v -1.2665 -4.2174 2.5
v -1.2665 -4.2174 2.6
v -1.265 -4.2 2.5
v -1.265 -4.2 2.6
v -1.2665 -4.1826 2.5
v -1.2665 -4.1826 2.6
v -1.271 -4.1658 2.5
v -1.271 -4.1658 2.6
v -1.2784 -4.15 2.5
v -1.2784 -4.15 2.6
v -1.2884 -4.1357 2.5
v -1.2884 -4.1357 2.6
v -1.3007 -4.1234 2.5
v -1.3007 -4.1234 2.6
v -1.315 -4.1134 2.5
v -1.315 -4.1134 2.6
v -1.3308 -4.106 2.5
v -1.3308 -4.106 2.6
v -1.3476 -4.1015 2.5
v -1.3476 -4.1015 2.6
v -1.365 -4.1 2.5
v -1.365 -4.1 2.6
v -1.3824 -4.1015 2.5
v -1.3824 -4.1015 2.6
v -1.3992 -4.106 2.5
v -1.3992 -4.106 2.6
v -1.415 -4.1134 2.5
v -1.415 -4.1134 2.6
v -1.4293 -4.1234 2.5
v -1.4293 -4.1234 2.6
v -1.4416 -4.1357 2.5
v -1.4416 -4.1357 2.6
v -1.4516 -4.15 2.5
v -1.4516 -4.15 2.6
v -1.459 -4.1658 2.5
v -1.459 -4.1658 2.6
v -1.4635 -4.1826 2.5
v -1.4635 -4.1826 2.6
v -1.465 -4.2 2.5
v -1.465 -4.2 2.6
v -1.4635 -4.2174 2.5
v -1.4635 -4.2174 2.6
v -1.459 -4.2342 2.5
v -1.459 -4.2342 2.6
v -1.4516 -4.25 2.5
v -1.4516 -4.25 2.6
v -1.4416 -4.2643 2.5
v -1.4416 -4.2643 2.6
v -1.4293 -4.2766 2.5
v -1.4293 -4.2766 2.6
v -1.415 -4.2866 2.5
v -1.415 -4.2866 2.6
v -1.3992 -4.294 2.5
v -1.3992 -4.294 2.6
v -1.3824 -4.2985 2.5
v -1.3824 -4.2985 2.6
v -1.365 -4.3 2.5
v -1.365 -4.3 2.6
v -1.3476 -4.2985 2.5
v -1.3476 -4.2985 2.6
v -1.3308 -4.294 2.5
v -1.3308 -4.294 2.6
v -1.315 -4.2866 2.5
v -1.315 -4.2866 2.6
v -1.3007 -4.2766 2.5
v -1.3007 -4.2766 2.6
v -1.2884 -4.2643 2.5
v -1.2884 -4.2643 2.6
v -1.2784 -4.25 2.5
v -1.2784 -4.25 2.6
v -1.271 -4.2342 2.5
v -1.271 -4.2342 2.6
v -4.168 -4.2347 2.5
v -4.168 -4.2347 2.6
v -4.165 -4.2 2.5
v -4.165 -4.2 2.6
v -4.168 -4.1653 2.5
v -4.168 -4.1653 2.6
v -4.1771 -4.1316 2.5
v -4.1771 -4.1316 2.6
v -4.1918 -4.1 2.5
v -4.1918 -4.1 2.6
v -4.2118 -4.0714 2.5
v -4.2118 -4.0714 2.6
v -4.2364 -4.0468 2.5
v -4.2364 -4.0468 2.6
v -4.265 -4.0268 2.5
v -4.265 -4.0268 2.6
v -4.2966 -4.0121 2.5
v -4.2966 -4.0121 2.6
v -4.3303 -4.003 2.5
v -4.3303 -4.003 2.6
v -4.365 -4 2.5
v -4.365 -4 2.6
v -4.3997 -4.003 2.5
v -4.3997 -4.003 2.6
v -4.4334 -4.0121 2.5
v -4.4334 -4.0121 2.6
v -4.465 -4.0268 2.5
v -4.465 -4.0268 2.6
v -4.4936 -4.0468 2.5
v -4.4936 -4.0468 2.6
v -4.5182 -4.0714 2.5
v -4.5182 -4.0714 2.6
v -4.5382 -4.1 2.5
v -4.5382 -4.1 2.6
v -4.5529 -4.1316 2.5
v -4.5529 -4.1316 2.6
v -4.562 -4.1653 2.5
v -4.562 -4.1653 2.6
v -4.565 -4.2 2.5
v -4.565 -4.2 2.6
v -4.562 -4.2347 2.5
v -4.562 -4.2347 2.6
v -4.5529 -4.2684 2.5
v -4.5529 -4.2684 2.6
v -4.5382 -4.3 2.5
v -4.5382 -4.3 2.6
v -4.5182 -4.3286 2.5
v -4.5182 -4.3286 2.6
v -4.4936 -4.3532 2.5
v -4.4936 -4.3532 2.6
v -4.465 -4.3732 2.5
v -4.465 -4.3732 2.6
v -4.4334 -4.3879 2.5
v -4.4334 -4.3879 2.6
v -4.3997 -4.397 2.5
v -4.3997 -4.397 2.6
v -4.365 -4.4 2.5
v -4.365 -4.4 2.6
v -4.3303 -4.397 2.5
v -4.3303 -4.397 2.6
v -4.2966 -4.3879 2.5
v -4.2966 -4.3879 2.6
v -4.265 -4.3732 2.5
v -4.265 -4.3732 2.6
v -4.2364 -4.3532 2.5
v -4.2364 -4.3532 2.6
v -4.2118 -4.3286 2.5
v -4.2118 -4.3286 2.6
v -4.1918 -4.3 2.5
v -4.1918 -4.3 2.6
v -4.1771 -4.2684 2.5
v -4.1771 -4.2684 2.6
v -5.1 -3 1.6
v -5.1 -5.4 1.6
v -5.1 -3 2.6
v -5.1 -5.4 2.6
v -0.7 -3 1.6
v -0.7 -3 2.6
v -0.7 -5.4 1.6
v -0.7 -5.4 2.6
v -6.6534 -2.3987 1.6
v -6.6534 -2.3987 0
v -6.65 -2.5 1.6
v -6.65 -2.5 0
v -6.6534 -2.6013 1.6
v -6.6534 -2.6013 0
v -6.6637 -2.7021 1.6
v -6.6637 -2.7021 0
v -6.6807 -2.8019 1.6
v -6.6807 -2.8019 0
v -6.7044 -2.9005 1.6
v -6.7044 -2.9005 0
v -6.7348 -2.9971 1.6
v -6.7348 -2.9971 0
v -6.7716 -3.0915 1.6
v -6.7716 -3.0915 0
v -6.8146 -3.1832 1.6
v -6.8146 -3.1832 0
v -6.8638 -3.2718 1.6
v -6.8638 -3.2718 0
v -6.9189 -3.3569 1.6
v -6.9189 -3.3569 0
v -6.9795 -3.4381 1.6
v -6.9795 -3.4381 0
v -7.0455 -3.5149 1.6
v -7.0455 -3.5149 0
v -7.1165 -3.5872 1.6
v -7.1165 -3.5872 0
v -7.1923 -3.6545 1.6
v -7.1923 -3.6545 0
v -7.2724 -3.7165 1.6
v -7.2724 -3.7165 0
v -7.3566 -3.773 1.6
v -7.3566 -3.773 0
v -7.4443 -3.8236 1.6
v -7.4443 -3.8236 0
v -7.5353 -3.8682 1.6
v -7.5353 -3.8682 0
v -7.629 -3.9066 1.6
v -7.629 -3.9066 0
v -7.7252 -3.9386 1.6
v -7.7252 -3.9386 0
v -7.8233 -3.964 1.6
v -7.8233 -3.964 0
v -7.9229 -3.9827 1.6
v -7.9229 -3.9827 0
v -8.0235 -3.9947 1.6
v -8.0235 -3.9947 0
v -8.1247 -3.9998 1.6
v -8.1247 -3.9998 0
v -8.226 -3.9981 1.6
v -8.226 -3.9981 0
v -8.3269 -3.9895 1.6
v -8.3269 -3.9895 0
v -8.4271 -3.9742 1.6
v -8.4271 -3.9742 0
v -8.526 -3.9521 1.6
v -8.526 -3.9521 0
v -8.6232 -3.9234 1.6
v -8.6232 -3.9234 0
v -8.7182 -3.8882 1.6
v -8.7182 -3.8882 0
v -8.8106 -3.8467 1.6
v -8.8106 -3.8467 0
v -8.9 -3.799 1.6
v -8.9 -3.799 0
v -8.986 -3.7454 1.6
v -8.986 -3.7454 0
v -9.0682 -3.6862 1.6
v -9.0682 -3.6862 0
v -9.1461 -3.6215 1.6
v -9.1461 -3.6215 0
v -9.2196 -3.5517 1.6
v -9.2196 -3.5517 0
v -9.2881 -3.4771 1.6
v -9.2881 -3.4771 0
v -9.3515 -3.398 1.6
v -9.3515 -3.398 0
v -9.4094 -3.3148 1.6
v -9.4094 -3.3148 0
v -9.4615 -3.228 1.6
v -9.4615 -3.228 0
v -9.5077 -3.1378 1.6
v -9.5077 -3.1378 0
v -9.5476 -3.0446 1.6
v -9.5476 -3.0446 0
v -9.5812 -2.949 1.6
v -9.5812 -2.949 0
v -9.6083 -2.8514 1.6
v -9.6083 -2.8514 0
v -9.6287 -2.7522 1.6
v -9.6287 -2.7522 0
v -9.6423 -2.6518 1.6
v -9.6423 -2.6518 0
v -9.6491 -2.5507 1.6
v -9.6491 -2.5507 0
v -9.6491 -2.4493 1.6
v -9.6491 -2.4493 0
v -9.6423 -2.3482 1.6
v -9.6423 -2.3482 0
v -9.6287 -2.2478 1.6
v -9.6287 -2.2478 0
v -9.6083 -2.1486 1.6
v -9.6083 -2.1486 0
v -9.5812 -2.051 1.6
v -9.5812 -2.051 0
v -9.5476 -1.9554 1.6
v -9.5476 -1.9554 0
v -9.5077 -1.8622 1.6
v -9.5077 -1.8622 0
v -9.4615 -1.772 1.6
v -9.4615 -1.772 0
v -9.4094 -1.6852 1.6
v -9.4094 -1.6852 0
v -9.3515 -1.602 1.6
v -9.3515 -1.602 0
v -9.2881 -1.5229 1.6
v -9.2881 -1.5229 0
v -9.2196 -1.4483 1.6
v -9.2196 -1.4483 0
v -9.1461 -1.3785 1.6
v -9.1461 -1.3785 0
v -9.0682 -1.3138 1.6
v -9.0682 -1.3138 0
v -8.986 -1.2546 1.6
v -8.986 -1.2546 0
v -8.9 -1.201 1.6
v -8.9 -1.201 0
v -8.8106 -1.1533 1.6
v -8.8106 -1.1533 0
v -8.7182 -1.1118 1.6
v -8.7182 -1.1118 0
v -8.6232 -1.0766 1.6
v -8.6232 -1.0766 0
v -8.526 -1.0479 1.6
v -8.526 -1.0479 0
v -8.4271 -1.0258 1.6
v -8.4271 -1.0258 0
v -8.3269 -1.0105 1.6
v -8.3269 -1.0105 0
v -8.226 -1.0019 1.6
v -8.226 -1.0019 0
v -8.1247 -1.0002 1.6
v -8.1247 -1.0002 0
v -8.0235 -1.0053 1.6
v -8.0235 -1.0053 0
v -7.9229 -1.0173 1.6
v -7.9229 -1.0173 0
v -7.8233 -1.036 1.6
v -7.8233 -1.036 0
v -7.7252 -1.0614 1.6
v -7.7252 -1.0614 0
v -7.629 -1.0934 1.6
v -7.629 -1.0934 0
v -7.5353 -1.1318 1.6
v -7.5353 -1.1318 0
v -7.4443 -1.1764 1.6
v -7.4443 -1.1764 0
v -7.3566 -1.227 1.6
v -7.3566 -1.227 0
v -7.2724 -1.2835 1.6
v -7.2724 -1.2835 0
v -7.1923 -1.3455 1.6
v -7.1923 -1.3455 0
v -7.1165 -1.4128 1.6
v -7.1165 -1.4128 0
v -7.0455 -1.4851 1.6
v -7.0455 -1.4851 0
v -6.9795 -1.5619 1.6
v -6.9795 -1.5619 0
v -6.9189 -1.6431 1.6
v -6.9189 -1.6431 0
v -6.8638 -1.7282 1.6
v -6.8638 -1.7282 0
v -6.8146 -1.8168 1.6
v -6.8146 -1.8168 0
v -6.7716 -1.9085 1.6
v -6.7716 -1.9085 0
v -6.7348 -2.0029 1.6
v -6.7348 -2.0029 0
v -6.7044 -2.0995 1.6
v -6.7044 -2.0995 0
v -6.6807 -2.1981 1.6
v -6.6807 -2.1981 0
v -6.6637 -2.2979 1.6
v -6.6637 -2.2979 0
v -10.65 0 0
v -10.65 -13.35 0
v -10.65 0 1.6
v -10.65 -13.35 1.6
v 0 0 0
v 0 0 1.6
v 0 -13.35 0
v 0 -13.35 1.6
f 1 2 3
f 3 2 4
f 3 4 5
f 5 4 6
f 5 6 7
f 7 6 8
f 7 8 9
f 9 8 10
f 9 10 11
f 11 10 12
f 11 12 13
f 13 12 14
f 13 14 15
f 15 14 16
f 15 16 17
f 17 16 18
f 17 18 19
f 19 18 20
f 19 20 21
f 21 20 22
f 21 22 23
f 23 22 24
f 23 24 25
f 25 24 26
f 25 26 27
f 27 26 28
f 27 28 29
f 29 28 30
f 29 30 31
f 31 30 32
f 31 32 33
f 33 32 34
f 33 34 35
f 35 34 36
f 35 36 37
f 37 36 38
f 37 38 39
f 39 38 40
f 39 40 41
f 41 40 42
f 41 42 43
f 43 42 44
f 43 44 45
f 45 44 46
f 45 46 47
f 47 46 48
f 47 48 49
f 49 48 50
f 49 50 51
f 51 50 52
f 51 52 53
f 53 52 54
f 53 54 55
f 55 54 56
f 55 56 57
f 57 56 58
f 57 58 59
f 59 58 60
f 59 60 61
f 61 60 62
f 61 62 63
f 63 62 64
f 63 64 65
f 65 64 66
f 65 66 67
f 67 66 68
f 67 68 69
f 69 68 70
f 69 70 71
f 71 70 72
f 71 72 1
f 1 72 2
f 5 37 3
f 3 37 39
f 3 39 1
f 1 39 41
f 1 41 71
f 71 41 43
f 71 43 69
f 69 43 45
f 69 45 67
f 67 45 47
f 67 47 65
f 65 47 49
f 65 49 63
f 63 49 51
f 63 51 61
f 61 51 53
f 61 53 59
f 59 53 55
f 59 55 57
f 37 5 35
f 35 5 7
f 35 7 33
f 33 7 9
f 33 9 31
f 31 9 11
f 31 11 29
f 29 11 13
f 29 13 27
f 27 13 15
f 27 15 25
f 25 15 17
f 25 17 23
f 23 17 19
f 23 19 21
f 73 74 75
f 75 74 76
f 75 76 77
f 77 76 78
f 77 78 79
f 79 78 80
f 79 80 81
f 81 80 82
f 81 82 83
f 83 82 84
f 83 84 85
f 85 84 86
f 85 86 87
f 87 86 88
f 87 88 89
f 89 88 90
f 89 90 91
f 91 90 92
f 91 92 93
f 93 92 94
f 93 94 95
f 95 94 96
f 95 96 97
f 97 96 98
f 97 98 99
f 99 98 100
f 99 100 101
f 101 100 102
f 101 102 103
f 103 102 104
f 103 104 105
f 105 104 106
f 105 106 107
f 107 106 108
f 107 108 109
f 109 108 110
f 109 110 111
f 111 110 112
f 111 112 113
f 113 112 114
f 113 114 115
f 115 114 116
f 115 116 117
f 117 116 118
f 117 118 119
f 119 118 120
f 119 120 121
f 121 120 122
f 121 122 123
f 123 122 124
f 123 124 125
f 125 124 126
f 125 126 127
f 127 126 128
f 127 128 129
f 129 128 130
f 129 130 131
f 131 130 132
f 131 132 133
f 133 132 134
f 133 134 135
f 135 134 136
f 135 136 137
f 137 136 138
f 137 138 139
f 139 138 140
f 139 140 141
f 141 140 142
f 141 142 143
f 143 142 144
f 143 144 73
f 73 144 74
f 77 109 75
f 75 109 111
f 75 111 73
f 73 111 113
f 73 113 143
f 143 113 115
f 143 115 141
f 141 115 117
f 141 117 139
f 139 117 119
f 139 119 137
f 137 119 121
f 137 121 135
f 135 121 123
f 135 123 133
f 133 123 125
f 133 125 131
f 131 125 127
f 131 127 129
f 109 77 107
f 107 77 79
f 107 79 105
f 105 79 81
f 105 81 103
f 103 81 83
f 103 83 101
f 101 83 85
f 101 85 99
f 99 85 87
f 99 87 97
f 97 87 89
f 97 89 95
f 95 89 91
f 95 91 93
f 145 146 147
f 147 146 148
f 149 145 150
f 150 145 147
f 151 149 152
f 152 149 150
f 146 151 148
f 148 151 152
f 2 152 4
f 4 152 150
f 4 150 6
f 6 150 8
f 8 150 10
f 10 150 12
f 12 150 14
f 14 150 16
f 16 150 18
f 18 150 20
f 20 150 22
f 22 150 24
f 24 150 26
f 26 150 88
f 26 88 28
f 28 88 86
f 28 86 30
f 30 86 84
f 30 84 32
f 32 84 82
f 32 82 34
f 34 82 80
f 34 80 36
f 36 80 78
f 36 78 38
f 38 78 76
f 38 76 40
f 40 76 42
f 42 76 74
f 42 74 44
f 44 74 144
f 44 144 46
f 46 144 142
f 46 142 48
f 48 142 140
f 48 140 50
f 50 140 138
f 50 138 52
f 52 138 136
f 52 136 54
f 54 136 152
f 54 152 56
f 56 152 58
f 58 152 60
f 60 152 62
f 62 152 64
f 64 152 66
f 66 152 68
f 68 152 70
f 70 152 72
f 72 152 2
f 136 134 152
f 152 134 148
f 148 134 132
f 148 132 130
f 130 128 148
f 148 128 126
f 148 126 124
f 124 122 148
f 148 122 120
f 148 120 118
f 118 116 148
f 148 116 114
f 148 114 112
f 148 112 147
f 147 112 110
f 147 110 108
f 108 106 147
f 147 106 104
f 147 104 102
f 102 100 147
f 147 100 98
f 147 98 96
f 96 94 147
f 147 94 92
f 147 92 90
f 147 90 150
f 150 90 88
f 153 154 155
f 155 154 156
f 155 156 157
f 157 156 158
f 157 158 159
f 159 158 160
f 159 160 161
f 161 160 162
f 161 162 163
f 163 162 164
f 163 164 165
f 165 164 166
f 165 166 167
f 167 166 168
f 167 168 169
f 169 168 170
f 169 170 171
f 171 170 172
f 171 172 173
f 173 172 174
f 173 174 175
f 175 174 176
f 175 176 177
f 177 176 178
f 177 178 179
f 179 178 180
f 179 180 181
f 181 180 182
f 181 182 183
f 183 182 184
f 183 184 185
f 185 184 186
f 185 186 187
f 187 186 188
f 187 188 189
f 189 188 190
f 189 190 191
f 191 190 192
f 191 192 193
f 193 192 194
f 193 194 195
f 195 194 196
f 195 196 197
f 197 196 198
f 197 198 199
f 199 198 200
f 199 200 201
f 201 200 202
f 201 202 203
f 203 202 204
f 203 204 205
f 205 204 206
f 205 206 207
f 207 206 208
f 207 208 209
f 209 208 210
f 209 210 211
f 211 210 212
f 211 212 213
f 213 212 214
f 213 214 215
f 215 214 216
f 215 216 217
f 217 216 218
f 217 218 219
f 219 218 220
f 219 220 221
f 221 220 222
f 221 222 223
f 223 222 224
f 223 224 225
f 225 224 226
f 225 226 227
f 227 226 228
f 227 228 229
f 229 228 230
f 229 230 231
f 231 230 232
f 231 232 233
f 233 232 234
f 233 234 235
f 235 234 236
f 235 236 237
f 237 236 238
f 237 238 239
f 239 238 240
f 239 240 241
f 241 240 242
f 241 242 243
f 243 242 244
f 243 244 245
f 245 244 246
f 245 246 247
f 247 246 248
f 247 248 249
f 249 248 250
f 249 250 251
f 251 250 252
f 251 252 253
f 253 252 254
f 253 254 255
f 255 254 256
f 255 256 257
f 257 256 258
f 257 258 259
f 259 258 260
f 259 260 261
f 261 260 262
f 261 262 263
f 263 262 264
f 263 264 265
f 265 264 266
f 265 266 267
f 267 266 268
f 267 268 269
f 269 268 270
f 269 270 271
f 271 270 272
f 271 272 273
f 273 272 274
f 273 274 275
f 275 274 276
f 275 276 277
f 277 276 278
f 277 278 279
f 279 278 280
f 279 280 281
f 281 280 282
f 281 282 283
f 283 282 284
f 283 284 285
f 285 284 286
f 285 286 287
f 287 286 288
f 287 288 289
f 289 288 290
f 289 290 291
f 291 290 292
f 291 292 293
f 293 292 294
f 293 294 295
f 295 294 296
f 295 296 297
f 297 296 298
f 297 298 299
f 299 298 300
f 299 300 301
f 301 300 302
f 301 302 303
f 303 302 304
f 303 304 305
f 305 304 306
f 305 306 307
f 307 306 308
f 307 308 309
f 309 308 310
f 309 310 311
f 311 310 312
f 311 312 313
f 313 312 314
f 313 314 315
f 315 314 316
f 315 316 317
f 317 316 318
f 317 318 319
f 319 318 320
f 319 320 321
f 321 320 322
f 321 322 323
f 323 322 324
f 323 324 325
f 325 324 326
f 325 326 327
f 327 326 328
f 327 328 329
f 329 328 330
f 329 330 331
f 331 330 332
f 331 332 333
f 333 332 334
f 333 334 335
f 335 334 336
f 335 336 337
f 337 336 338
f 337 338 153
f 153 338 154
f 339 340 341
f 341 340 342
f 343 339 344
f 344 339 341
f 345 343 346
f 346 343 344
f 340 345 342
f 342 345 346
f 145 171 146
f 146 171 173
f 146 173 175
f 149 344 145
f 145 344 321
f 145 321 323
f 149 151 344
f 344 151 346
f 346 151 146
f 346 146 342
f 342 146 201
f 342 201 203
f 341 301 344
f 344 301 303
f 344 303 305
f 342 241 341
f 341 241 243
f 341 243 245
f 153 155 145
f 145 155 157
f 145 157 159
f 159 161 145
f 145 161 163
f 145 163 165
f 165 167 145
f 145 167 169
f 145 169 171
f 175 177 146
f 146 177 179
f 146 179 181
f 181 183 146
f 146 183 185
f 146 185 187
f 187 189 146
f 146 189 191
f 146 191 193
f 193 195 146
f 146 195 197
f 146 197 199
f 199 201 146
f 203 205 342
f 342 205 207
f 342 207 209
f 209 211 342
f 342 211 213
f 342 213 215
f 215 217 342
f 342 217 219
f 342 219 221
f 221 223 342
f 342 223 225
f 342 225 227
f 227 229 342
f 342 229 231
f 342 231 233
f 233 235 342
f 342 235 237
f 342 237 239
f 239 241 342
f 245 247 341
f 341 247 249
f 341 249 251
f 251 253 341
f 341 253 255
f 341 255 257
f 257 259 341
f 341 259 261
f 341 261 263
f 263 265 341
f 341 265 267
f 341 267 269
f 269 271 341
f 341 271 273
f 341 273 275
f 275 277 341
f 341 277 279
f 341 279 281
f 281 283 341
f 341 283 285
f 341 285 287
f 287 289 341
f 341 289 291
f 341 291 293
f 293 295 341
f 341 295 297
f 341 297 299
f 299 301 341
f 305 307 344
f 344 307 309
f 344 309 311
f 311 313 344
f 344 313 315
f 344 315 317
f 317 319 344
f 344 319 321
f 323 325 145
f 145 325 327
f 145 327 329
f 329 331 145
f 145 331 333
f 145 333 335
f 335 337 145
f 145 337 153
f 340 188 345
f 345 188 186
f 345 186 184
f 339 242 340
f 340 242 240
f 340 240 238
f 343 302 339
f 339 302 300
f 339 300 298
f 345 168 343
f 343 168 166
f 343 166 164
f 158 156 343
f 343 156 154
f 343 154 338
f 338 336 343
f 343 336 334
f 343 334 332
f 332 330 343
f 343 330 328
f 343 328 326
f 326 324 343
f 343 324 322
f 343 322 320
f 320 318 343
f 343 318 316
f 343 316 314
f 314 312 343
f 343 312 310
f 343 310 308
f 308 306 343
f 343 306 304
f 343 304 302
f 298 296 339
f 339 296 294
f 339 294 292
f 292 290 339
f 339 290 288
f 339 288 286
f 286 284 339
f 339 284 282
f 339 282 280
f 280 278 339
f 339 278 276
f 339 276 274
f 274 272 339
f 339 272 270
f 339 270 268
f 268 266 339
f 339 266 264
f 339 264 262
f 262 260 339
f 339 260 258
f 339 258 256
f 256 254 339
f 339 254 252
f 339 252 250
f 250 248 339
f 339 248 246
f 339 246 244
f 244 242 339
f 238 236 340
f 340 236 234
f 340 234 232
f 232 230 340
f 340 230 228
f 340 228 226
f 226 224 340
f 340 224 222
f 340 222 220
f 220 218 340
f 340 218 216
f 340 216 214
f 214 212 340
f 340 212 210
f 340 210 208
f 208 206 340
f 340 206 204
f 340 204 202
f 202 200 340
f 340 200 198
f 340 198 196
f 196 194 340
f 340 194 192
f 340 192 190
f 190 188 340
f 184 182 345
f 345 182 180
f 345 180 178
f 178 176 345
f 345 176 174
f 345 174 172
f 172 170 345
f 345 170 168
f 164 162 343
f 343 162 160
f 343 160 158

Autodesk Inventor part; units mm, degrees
ref_plane "YZ Plane" through (0, 0, 0) normal (1, 0, 0) x (0, 1, 0)
ref_plane "XZ Plane" through (0, 0, 0) normal (0, 1, 0) x (-1, 0, 0)
ref_plane "XY Plane" through (0, 0, 0) normal (0, 0, 1) x (1, 0, 0)
sketch "Náčrt1" plane through (0, 0, 0) normal (0, 0, 1) x (1, 0, 0)
  line L0 (-10.65, 0) -> (0, 0)
  line L1 (0, 0) -> (0, -13.35)
  line L2 (0, -13.35) -> (-10.65, -13.35)
  line L3 (-10.65, -13.35) -> (-10.65, 0)
  circle A0 centre (-8.15, -2.5) radius 1.5
  dimension "d0" = 10.65
  dimension "d1" = 13.35
  dimension "d2" = 3
  dimension "d3" = 1
  dimension "d4" = 1
extrude "Vysunutí1" add sketch "Náčrt1" along normal blind 1.6
sketch "Náčrt2" plane through (0, 0, 1.6) normal (0, 0, 1) x (1, 0, 0)
  line L0 (-5.1, -3) -> (-0.7, -3)
  line L1 (-0.7, -3) -> (-0.7, -5.4)
  line L2 (-0.7, -5.4) -> (-5.1, -5.4)
  line L3 (-5.1, -5.4) -> (-5.1, -3)
  point P0 (0, 0)
  dimension "d7" = 2.4
  dimension "d8" = 4.4
  dimension "d9" = 3
  dimension "d10" = 0.7
extrude "Vysunutí2" add sketch "Náčrt2" along normal blind 1
sketch "Náčrt3" plane through (0, 0, 2.6) normal (0, 0, 1) x (1, 0, 0)
  circle A0 centre (-4.365, -4.2) radius 0.2
  circle A1 centre (-1.365, -4.2) radius 0.1
  line L0 (-5.1, -3) -> (-5.1, -5.4) projected
  line L1 (-0.7, -5.4) -> (-0.7, -3) projected
  point P0 (0, 0)
  point P1 (-5.1, -4.2)
  point P2 (-0.7, -4.2)
  dimension "d13" = 0.4
  dimension "d14" = 0.2
  dimension "d16" = 0.665
  dimension "d17" = 3
extrude "Vysunutí3" cut sketch "Náčrt3" against normal blind 0.1
properties part number "senzor"
